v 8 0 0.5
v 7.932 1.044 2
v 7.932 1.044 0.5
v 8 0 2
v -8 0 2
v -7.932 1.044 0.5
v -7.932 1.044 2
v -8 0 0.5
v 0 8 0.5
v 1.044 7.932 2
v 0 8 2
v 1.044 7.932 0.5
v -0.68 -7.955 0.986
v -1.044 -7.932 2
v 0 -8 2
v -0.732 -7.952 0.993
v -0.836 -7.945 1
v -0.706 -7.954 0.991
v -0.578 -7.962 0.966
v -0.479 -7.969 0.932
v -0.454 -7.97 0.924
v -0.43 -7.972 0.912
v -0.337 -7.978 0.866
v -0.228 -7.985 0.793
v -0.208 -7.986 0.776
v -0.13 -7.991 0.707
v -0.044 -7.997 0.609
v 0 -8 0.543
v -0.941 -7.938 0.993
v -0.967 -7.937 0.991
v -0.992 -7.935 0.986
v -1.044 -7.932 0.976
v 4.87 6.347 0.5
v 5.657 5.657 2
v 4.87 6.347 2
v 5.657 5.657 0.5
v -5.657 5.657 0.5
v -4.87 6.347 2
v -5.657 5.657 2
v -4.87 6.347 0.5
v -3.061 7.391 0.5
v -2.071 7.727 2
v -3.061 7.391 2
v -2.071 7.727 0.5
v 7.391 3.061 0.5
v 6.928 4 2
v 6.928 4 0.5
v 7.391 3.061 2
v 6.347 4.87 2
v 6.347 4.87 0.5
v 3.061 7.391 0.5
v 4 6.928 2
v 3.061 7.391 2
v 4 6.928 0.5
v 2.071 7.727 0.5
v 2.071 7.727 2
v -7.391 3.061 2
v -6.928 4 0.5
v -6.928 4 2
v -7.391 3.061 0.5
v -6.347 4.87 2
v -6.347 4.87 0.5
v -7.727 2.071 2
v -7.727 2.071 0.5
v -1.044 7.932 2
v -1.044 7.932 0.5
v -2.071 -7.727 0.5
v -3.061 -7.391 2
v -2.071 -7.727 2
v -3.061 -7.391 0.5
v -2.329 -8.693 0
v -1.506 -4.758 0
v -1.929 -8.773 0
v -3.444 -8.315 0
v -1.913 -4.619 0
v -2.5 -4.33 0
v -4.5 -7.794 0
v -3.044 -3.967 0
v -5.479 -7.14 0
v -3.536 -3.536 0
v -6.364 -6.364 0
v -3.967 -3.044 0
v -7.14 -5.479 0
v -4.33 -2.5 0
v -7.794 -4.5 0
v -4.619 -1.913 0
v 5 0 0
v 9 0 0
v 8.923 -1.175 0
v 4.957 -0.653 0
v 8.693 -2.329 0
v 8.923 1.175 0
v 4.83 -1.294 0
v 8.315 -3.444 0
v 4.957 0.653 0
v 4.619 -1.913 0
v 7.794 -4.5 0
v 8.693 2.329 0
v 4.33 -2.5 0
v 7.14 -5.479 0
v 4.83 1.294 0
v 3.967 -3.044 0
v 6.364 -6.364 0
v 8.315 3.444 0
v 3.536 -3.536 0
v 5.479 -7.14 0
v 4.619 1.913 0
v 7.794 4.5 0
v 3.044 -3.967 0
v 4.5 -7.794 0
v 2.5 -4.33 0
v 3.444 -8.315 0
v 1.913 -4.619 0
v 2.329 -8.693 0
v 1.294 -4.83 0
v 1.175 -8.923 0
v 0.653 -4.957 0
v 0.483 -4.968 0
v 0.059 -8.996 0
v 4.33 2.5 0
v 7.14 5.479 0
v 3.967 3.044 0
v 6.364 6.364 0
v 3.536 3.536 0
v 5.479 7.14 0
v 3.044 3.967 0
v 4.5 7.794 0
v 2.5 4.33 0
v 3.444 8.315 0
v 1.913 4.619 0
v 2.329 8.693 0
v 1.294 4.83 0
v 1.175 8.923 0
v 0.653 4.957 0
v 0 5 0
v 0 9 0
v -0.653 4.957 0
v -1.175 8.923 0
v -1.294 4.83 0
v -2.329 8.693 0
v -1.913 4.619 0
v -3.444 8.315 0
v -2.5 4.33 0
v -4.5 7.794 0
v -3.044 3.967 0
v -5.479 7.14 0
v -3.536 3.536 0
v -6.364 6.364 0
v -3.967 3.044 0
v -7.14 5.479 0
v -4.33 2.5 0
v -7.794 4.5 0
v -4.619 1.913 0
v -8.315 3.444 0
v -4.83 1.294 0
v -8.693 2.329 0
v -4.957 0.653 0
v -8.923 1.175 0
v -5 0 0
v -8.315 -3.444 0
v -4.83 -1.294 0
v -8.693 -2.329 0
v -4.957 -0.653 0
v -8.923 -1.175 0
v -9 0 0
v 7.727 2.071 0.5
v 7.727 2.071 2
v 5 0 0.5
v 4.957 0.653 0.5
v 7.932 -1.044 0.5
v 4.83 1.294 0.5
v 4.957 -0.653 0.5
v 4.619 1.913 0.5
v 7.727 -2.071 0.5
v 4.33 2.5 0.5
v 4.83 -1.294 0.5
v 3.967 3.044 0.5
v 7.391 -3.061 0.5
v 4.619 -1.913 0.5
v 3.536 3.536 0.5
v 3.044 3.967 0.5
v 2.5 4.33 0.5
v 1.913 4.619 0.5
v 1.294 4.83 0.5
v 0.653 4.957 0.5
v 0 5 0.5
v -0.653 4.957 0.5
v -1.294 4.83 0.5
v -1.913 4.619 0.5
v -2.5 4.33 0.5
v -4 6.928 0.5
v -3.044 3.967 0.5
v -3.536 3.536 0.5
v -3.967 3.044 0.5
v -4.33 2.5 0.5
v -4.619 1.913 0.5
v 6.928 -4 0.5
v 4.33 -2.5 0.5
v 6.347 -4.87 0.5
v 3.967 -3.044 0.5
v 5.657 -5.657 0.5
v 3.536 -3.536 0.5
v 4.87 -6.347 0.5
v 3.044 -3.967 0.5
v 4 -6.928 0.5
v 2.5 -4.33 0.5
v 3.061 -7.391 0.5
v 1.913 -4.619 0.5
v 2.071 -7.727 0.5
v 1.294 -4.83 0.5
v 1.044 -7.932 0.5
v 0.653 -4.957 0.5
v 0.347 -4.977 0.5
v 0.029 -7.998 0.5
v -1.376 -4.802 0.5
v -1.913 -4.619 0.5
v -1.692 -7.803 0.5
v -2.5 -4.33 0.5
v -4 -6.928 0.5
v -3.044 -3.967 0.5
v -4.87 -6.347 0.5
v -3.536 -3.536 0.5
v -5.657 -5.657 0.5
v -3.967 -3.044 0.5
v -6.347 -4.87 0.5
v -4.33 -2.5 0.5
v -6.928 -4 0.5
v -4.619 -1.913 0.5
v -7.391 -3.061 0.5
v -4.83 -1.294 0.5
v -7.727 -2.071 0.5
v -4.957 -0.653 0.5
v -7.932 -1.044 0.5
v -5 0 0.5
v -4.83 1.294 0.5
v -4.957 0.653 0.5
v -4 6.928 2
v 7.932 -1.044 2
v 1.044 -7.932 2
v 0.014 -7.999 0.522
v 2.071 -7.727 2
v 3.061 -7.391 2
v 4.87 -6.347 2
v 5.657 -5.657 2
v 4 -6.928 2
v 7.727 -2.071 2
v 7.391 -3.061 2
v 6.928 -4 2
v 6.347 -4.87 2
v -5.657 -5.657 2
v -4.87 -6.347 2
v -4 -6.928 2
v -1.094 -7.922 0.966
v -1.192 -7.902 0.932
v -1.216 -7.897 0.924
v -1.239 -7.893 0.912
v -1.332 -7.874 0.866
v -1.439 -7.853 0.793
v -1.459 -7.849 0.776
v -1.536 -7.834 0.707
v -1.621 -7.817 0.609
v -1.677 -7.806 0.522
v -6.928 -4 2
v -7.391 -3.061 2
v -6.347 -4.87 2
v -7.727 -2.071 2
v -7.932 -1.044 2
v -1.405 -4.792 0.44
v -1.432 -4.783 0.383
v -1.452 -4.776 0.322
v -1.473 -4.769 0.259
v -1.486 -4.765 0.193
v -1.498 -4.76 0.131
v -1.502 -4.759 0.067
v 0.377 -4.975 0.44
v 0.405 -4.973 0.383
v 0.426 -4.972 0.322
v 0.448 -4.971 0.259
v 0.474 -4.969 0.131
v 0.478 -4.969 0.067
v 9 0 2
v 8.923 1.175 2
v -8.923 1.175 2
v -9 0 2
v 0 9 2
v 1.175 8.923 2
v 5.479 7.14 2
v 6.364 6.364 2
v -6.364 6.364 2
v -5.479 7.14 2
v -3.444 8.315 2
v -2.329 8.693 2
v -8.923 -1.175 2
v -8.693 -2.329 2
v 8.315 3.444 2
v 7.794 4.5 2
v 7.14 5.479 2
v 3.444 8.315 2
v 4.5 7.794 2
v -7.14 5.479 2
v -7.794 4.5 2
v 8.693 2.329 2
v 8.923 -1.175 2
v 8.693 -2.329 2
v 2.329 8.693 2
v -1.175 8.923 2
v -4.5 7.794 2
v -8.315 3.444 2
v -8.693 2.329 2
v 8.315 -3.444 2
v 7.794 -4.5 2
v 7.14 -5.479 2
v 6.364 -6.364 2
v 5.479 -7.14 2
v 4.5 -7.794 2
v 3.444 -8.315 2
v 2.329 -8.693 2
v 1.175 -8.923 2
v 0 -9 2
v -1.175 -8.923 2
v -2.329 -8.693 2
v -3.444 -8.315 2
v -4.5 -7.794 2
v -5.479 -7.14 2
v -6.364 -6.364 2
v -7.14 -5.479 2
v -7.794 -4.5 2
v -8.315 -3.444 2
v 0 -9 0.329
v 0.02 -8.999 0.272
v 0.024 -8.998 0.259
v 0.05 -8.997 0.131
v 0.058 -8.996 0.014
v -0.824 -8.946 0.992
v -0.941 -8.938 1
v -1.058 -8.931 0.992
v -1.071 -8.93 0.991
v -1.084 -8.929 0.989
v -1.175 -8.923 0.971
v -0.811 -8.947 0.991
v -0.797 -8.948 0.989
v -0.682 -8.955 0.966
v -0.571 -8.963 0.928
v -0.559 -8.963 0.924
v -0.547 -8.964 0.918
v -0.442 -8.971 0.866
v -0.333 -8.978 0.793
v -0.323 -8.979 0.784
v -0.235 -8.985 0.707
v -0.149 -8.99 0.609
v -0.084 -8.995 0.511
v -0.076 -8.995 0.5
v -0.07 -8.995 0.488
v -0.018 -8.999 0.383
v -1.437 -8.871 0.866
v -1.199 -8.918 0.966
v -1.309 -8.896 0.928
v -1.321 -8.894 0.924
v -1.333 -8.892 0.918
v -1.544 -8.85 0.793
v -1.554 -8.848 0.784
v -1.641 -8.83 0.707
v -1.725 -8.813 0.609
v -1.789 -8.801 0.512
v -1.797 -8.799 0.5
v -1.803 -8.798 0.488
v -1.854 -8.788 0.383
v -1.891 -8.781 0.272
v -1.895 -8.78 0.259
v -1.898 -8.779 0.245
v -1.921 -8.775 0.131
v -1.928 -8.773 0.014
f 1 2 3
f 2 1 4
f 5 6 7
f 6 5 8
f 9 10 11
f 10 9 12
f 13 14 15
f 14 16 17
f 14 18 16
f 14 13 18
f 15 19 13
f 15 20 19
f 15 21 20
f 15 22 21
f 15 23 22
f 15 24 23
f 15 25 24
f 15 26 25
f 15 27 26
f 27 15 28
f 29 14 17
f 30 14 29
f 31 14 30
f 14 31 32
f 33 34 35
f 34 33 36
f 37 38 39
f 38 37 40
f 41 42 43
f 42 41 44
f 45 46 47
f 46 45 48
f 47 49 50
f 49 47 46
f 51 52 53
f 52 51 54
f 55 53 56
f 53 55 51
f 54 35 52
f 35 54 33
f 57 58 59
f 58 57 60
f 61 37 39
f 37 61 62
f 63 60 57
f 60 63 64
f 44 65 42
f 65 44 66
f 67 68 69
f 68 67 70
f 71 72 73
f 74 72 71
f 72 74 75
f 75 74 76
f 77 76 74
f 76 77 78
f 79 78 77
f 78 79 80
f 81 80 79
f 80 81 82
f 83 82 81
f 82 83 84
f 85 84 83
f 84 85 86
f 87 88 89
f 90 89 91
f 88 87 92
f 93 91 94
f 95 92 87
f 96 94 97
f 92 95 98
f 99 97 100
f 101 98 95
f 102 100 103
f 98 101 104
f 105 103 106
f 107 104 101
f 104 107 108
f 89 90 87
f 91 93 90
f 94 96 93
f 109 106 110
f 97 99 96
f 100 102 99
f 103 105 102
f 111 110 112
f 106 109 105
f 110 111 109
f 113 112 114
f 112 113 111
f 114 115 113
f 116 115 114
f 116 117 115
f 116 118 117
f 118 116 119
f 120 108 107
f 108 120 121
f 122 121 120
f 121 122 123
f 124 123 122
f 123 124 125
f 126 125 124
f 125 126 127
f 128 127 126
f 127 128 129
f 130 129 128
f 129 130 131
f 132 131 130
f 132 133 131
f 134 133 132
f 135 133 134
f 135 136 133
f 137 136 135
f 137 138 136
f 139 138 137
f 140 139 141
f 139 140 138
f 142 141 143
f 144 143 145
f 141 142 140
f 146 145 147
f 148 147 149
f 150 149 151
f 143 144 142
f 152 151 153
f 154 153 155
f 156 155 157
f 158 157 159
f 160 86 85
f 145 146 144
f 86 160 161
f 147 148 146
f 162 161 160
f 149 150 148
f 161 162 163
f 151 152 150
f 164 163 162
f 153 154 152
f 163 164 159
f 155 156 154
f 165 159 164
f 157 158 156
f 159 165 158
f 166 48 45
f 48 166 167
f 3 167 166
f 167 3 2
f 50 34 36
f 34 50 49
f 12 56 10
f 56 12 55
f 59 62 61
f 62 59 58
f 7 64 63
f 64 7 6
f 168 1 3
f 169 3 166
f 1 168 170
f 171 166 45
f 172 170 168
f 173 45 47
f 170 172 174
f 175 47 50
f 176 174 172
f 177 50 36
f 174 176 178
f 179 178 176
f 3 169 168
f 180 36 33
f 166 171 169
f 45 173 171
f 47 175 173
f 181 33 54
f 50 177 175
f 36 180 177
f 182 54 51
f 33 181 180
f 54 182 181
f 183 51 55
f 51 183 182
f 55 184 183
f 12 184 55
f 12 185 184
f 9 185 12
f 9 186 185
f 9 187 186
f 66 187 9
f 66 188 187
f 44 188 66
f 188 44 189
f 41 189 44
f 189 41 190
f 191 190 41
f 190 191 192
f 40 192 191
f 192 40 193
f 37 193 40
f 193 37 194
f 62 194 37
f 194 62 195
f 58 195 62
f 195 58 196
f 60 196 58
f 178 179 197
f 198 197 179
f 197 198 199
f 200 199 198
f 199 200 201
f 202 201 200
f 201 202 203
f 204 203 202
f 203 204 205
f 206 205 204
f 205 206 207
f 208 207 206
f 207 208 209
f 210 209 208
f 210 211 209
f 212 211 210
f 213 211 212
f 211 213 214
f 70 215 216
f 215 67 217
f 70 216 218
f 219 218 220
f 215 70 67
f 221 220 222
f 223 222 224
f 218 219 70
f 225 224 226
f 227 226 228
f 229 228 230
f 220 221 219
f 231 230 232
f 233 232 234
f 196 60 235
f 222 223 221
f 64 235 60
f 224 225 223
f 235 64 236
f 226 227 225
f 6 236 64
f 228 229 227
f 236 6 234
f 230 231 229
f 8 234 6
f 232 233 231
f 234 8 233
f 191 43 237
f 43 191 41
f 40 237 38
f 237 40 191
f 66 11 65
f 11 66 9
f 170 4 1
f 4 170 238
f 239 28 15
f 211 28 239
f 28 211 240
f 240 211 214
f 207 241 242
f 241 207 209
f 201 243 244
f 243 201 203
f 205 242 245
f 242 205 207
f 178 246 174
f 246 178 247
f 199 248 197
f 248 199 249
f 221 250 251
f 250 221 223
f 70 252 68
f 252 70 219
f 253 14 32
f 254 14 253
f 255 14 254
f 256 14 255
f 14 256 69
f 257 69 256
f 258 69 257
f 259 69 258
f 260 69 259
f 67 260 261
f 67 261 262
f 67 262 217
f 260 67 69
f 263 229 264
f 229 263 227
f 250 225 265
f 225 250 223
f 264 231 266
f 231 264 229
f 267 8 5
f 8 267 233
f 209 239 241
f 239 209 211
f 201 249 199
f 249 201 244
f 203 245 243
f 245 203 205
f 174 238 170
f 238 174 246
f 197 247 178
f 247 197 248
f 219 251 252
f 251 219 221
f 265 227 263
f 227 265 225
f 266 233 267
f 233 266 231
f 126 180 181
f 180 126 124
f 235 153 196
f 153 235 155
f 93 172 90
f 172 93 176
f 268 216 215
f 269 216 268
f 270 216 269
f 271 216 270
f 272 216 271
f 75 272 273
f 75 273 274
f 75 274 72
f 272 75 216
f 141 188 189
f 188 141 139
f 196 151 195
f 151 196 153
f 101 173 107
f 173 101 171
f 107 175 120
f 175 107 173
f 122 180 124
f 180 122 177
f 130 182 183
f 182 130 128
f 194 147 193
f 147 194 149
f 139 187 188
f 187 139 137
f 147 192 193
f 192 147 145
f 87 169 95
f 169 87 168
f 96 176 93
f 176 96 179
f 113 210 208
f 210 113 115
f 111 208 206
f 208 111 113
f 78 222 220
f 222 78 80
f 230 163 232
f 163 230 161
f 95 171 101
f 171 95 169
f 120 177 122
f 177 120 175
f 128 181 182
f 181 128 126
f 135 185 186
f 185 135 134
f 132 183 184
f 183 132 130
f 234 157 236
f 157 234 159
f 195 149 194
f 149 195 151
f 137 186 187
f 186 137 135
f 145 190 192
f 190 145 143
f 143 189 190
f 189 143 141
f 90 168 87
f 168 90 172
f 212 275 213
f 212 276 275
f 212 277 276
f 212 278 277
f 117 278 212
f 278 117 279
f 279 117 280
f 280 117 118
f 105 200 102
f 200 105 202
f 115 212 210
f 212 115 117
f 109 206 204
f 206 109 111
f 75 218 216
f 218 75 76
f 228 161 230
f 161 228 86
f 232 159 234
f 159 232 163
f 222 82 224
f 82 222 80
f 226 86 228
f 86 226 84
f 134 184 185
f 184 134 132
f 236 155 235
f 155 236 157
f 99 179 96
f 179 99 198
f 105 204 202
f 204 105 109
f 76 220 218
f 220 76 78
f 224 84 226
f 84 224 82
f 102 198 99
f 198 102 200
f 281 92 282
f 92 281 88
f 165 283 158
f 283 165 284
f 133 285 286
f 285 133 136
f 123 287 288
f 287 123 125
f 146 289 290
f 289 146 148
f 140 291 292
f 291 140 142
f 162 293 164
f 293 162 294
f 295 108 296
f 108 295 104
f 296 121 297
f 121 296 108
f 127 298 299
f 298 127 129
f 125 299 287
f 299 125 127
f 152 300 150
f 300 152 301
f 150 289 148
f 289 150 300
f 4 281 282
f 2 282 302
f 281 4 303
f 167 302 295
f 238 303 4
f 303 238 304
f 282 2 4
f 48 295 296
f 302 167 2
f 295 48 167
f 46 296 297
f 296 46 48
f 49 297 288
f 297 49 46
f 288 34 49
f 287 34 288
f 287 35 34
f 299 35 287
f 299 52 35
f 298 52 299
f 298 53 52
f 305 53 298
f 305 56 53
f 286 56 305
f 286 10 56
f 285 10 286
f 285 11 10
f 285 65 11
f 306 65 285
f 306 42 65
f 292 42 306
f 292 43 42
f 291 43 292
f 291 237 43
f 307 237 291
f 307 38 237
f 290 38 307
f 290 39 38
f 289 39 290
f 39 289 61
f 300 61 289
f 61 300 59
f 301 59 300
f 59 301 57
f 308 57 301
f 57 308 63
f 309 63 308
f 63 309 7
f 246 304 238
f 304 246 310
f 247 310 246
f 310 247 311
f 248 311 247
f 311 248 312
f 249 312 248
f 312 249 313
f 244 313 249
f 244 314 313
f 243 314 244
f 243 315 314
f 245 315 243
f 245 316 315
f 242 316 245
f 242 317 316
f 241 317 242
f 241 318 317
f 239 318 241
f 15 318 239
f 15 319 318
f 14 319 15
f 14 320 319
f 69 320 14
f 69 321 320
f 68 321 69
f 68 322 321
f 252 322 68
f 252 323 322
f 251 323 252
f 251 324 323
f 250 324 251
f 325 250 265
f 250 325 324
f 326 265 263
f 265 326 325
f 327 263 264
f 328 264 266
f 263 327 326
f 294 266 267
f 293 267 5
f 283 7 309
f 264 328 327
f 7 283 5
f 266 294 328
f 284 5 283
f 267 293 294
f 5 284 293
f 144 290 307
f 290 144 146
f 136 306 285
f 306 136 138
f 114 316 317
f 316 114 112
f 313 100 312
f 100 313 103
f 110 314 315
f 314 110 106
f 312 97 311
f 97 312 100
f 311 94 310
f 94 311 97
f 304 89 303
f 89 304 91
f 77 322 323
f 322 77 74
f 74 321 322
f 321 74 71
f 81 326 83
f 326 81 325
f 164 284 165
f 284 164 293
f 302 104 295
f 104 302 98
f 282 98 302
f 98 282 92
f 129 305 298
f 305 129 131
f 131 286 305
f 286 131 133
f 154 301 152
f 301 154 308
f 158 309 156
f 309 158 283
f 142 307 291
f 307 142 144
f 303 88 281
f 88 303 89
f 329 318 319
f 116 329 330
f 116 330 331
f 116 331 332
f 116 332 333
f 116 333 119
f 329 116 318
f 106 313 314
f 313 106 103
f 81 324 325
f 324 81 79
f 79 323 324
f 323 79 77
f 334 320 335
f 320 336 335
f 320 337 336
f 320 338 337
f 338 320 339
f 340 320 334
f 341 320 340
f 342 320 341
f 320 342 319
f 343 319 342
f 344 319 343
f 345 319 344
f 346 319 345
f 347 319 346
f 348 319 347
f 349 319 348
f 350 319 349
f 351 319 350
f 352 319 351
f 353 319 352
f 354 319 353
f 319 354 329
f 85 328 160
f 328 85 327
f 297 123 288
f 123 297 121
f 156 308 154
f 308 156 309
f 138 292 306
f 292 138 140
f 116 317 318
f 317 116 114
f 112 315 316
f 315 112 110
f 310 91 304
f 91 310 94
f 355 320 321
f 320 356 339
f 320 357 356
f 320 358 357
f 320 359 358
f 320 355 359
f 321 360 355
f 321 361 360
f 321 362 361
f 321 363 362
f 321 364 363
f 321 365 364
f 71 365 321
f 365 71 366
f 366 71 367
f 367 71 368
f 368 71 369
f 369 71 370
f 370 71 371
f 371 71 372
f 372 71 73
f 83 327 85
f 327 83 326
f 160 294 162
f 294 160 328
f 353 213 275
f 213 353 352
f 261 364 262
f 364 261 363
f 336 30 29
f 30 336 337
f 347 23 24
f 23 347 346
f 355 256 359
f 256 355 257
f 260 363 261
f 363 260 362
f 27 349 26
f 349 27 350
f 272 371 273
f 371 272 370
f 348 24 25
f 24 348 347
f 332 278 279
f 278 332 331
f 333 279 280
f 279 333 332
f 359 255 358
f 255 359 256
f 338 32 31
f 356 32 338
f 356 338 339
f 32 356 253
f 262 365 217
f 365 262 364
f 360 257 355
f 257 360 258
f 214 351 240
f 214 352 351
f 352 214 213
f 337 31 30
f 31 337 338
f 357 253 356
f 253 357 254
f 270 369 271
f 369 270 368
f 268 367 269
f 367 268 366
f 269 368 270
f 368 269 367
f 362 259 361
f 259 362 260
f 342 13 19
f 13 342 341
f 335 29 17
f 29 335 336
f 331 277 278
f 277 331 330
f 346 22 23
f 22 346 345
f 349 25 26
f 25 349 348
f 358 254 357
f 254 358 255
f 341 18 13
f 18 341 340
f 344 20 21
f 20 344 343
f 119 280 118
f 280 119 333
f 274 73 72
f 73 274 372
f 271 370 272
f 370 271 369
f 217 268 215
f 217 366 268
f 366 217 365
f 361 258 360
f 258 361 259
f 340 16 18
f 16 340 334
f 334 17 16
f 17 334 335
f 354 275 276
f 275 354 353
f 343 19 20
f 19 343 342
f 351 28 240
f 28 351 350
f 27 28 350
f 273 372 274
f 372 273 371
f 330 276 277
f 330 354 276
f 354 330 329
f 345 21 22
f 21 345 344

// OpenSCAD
// file: ../build_environments.scad
// build_environments.scad: modules to build level sections
//

module pool(diameter=10.0, wall_height=2.0, step_width=3.0, connections=[])
{
    difference() {
        union() {
        difference() {
            cylinder(h=0.5,r1=diameter+step_width,r2=diameter+step_width,$fn=48);
            translate([0,0,-0.1])
                cylinder(h=0.7,r1=diameter,r2=diameter,$fn=48);
        }
        difference() {
            cylinder(h=wall_height,r1=diameter+step_width+1.0,r2=diameter+step_width+1.0,$fn=48);
            translate([0,0,-0.1])
                cylinder(h=wall_height+0.2,r1=diameter+step_width,r2=diameter+step_width,$fn=48);
        }
        }
    
        for (c = connections)
        {
            rotate([0,90,0]) {
                angle = atan2(c[1],c[0]);
                rotate([-angle,0,0]) {
                    cylinder(h=diameter+5.0,r1=c[2],r2=c[2],$fn=48);
                }
            }
        }
    }
}

module straight(length=10.0, width=2.0, dy1=0.0, dy2=0.0, dz=0.0)
{
    dims = [0, 0, 0, 0, 0, (dz/length)];
    matrix = [
        [ 1, dims[0], dims[1], 0 ],
        [ dims[2], 1, dims[4], 0 ],
        [ dims[5], dims[3], 1, 0 ],
        [ 0, 0, 0, 1 ]
    ];
    multmatrix(matrix)
    difference() {
        translate([dy1,0,0])
        union() {
            rotate([0,90,0]) {
                difference() {
                    cylinder(h=(length-dy1-dy2),r1=width+1.0,r2=width+1.0,$fn=24);
                    translate([0,0,-0.1])
                        cylinder(h=(length-dy1-dy2+0.2),r1=width,r2=width,$fn=24);
                }
                difference() {
                    cylinder(h=1.0,r1=width+2.0,r2=width+2.0,$fn=24);
                    translate([0,0,-0.1])
                        cylinder(h=1.2,r1=width,r2=width,$fn=24);
                }
                translate([0,0,(length-dy1-dy2)-1.0]) {
                    difference() {
                        cylinder(h=1.0,r1=width+2.0,r2=width+2.0,$fn=24);
                        translate([0,0,-0.1])
                            cylinder(h=1.2,r1=width,r2=width,$fn=24);
                    }
                }
            }
        }
        translate([0,0,-(2*width+4.0)/2])
            cube([3*length,3*length,2*width+4.0],center=true);
    }
}

module curve(p0=[0,0], center=[0,0], dir=1, angle=0.0, width=2.0)
{
    radius = sqrt((p0[0]-center[0])*(p0[0]-center[0]) + (p0[1]-center[1])*(p0[1]-center[1]));
    if (dir == 0) {
        difference() {
            rotate([0,0,-90])
            difference() {
                rotate_extrude(angle = angle, convexity = 10, $fn=32)
                    translate([radius, 0, 0])
                        circle(r = width+1.0,$fn=24);
                rotate([0,0,-1.0])
                    rotate_extrude(angle = angle+2.0, convexity = 10, $fn=32)
                        translate([radius, 0, 0])
                            circle(r = width,$fn=24);
            }
            translate([0,0,-(2*width+4.0)/2])
                cube([5*radius,5*radius,2*width+4.0],center=true);
        }
    }
    else {
        difference() {
            rotate([0,0,90])
            difference() {
                rotate_extrude(angle = -angle, convexity = 10, $fn=32)
                    translate([radius, 0, 0])
                        circle(r = width+1.0,$fn=24);
                rotate([0,0,1.0])
                    rotate_extrude(angle = -angle-2.0, convexity = 10, $fn=32)
                        translate([radius, 0, 0])
                            circle(r = width,$fn=24);
            }
            translate([0,0,-(2*width+4.0)/2])
                cube([5*radius,5*radius,2*width+4.0],center=true);
        }
    }

}

// test pool
//pool(diameter=12.0000, wall_height=3.0000, step_width=3.0000, connections=[[0.0000,-26.0000,2.0000], [23.6074,0.0000,2.0000]]);

// test straight, slope
//straight(length=26.0000, width=2.0000, dy1=11.8322, dy2=6.7082, dz=0.0000);
//straight(length=29.1549, width=12.0000, dy1=0.0000, dy2=0.0000, dz=-15.0000);

// test curve
//curve(p0=[23.6074, 0.0000], center=[23.6074, 5.0000], dir=0, angle=60.1011, width=2.0000);
//curve(p0=[33.6426, 12.4219], center=[37.9771, 9.9295], dir=1, angle=120.4627, width=2.0000);
// main file
use <../build_environments.scad>;
pool(diameter=5.0000, wall_height=2.0000, step_width=3.0000, connections=[[-4.0000,-38.0000,1.0000]]);
